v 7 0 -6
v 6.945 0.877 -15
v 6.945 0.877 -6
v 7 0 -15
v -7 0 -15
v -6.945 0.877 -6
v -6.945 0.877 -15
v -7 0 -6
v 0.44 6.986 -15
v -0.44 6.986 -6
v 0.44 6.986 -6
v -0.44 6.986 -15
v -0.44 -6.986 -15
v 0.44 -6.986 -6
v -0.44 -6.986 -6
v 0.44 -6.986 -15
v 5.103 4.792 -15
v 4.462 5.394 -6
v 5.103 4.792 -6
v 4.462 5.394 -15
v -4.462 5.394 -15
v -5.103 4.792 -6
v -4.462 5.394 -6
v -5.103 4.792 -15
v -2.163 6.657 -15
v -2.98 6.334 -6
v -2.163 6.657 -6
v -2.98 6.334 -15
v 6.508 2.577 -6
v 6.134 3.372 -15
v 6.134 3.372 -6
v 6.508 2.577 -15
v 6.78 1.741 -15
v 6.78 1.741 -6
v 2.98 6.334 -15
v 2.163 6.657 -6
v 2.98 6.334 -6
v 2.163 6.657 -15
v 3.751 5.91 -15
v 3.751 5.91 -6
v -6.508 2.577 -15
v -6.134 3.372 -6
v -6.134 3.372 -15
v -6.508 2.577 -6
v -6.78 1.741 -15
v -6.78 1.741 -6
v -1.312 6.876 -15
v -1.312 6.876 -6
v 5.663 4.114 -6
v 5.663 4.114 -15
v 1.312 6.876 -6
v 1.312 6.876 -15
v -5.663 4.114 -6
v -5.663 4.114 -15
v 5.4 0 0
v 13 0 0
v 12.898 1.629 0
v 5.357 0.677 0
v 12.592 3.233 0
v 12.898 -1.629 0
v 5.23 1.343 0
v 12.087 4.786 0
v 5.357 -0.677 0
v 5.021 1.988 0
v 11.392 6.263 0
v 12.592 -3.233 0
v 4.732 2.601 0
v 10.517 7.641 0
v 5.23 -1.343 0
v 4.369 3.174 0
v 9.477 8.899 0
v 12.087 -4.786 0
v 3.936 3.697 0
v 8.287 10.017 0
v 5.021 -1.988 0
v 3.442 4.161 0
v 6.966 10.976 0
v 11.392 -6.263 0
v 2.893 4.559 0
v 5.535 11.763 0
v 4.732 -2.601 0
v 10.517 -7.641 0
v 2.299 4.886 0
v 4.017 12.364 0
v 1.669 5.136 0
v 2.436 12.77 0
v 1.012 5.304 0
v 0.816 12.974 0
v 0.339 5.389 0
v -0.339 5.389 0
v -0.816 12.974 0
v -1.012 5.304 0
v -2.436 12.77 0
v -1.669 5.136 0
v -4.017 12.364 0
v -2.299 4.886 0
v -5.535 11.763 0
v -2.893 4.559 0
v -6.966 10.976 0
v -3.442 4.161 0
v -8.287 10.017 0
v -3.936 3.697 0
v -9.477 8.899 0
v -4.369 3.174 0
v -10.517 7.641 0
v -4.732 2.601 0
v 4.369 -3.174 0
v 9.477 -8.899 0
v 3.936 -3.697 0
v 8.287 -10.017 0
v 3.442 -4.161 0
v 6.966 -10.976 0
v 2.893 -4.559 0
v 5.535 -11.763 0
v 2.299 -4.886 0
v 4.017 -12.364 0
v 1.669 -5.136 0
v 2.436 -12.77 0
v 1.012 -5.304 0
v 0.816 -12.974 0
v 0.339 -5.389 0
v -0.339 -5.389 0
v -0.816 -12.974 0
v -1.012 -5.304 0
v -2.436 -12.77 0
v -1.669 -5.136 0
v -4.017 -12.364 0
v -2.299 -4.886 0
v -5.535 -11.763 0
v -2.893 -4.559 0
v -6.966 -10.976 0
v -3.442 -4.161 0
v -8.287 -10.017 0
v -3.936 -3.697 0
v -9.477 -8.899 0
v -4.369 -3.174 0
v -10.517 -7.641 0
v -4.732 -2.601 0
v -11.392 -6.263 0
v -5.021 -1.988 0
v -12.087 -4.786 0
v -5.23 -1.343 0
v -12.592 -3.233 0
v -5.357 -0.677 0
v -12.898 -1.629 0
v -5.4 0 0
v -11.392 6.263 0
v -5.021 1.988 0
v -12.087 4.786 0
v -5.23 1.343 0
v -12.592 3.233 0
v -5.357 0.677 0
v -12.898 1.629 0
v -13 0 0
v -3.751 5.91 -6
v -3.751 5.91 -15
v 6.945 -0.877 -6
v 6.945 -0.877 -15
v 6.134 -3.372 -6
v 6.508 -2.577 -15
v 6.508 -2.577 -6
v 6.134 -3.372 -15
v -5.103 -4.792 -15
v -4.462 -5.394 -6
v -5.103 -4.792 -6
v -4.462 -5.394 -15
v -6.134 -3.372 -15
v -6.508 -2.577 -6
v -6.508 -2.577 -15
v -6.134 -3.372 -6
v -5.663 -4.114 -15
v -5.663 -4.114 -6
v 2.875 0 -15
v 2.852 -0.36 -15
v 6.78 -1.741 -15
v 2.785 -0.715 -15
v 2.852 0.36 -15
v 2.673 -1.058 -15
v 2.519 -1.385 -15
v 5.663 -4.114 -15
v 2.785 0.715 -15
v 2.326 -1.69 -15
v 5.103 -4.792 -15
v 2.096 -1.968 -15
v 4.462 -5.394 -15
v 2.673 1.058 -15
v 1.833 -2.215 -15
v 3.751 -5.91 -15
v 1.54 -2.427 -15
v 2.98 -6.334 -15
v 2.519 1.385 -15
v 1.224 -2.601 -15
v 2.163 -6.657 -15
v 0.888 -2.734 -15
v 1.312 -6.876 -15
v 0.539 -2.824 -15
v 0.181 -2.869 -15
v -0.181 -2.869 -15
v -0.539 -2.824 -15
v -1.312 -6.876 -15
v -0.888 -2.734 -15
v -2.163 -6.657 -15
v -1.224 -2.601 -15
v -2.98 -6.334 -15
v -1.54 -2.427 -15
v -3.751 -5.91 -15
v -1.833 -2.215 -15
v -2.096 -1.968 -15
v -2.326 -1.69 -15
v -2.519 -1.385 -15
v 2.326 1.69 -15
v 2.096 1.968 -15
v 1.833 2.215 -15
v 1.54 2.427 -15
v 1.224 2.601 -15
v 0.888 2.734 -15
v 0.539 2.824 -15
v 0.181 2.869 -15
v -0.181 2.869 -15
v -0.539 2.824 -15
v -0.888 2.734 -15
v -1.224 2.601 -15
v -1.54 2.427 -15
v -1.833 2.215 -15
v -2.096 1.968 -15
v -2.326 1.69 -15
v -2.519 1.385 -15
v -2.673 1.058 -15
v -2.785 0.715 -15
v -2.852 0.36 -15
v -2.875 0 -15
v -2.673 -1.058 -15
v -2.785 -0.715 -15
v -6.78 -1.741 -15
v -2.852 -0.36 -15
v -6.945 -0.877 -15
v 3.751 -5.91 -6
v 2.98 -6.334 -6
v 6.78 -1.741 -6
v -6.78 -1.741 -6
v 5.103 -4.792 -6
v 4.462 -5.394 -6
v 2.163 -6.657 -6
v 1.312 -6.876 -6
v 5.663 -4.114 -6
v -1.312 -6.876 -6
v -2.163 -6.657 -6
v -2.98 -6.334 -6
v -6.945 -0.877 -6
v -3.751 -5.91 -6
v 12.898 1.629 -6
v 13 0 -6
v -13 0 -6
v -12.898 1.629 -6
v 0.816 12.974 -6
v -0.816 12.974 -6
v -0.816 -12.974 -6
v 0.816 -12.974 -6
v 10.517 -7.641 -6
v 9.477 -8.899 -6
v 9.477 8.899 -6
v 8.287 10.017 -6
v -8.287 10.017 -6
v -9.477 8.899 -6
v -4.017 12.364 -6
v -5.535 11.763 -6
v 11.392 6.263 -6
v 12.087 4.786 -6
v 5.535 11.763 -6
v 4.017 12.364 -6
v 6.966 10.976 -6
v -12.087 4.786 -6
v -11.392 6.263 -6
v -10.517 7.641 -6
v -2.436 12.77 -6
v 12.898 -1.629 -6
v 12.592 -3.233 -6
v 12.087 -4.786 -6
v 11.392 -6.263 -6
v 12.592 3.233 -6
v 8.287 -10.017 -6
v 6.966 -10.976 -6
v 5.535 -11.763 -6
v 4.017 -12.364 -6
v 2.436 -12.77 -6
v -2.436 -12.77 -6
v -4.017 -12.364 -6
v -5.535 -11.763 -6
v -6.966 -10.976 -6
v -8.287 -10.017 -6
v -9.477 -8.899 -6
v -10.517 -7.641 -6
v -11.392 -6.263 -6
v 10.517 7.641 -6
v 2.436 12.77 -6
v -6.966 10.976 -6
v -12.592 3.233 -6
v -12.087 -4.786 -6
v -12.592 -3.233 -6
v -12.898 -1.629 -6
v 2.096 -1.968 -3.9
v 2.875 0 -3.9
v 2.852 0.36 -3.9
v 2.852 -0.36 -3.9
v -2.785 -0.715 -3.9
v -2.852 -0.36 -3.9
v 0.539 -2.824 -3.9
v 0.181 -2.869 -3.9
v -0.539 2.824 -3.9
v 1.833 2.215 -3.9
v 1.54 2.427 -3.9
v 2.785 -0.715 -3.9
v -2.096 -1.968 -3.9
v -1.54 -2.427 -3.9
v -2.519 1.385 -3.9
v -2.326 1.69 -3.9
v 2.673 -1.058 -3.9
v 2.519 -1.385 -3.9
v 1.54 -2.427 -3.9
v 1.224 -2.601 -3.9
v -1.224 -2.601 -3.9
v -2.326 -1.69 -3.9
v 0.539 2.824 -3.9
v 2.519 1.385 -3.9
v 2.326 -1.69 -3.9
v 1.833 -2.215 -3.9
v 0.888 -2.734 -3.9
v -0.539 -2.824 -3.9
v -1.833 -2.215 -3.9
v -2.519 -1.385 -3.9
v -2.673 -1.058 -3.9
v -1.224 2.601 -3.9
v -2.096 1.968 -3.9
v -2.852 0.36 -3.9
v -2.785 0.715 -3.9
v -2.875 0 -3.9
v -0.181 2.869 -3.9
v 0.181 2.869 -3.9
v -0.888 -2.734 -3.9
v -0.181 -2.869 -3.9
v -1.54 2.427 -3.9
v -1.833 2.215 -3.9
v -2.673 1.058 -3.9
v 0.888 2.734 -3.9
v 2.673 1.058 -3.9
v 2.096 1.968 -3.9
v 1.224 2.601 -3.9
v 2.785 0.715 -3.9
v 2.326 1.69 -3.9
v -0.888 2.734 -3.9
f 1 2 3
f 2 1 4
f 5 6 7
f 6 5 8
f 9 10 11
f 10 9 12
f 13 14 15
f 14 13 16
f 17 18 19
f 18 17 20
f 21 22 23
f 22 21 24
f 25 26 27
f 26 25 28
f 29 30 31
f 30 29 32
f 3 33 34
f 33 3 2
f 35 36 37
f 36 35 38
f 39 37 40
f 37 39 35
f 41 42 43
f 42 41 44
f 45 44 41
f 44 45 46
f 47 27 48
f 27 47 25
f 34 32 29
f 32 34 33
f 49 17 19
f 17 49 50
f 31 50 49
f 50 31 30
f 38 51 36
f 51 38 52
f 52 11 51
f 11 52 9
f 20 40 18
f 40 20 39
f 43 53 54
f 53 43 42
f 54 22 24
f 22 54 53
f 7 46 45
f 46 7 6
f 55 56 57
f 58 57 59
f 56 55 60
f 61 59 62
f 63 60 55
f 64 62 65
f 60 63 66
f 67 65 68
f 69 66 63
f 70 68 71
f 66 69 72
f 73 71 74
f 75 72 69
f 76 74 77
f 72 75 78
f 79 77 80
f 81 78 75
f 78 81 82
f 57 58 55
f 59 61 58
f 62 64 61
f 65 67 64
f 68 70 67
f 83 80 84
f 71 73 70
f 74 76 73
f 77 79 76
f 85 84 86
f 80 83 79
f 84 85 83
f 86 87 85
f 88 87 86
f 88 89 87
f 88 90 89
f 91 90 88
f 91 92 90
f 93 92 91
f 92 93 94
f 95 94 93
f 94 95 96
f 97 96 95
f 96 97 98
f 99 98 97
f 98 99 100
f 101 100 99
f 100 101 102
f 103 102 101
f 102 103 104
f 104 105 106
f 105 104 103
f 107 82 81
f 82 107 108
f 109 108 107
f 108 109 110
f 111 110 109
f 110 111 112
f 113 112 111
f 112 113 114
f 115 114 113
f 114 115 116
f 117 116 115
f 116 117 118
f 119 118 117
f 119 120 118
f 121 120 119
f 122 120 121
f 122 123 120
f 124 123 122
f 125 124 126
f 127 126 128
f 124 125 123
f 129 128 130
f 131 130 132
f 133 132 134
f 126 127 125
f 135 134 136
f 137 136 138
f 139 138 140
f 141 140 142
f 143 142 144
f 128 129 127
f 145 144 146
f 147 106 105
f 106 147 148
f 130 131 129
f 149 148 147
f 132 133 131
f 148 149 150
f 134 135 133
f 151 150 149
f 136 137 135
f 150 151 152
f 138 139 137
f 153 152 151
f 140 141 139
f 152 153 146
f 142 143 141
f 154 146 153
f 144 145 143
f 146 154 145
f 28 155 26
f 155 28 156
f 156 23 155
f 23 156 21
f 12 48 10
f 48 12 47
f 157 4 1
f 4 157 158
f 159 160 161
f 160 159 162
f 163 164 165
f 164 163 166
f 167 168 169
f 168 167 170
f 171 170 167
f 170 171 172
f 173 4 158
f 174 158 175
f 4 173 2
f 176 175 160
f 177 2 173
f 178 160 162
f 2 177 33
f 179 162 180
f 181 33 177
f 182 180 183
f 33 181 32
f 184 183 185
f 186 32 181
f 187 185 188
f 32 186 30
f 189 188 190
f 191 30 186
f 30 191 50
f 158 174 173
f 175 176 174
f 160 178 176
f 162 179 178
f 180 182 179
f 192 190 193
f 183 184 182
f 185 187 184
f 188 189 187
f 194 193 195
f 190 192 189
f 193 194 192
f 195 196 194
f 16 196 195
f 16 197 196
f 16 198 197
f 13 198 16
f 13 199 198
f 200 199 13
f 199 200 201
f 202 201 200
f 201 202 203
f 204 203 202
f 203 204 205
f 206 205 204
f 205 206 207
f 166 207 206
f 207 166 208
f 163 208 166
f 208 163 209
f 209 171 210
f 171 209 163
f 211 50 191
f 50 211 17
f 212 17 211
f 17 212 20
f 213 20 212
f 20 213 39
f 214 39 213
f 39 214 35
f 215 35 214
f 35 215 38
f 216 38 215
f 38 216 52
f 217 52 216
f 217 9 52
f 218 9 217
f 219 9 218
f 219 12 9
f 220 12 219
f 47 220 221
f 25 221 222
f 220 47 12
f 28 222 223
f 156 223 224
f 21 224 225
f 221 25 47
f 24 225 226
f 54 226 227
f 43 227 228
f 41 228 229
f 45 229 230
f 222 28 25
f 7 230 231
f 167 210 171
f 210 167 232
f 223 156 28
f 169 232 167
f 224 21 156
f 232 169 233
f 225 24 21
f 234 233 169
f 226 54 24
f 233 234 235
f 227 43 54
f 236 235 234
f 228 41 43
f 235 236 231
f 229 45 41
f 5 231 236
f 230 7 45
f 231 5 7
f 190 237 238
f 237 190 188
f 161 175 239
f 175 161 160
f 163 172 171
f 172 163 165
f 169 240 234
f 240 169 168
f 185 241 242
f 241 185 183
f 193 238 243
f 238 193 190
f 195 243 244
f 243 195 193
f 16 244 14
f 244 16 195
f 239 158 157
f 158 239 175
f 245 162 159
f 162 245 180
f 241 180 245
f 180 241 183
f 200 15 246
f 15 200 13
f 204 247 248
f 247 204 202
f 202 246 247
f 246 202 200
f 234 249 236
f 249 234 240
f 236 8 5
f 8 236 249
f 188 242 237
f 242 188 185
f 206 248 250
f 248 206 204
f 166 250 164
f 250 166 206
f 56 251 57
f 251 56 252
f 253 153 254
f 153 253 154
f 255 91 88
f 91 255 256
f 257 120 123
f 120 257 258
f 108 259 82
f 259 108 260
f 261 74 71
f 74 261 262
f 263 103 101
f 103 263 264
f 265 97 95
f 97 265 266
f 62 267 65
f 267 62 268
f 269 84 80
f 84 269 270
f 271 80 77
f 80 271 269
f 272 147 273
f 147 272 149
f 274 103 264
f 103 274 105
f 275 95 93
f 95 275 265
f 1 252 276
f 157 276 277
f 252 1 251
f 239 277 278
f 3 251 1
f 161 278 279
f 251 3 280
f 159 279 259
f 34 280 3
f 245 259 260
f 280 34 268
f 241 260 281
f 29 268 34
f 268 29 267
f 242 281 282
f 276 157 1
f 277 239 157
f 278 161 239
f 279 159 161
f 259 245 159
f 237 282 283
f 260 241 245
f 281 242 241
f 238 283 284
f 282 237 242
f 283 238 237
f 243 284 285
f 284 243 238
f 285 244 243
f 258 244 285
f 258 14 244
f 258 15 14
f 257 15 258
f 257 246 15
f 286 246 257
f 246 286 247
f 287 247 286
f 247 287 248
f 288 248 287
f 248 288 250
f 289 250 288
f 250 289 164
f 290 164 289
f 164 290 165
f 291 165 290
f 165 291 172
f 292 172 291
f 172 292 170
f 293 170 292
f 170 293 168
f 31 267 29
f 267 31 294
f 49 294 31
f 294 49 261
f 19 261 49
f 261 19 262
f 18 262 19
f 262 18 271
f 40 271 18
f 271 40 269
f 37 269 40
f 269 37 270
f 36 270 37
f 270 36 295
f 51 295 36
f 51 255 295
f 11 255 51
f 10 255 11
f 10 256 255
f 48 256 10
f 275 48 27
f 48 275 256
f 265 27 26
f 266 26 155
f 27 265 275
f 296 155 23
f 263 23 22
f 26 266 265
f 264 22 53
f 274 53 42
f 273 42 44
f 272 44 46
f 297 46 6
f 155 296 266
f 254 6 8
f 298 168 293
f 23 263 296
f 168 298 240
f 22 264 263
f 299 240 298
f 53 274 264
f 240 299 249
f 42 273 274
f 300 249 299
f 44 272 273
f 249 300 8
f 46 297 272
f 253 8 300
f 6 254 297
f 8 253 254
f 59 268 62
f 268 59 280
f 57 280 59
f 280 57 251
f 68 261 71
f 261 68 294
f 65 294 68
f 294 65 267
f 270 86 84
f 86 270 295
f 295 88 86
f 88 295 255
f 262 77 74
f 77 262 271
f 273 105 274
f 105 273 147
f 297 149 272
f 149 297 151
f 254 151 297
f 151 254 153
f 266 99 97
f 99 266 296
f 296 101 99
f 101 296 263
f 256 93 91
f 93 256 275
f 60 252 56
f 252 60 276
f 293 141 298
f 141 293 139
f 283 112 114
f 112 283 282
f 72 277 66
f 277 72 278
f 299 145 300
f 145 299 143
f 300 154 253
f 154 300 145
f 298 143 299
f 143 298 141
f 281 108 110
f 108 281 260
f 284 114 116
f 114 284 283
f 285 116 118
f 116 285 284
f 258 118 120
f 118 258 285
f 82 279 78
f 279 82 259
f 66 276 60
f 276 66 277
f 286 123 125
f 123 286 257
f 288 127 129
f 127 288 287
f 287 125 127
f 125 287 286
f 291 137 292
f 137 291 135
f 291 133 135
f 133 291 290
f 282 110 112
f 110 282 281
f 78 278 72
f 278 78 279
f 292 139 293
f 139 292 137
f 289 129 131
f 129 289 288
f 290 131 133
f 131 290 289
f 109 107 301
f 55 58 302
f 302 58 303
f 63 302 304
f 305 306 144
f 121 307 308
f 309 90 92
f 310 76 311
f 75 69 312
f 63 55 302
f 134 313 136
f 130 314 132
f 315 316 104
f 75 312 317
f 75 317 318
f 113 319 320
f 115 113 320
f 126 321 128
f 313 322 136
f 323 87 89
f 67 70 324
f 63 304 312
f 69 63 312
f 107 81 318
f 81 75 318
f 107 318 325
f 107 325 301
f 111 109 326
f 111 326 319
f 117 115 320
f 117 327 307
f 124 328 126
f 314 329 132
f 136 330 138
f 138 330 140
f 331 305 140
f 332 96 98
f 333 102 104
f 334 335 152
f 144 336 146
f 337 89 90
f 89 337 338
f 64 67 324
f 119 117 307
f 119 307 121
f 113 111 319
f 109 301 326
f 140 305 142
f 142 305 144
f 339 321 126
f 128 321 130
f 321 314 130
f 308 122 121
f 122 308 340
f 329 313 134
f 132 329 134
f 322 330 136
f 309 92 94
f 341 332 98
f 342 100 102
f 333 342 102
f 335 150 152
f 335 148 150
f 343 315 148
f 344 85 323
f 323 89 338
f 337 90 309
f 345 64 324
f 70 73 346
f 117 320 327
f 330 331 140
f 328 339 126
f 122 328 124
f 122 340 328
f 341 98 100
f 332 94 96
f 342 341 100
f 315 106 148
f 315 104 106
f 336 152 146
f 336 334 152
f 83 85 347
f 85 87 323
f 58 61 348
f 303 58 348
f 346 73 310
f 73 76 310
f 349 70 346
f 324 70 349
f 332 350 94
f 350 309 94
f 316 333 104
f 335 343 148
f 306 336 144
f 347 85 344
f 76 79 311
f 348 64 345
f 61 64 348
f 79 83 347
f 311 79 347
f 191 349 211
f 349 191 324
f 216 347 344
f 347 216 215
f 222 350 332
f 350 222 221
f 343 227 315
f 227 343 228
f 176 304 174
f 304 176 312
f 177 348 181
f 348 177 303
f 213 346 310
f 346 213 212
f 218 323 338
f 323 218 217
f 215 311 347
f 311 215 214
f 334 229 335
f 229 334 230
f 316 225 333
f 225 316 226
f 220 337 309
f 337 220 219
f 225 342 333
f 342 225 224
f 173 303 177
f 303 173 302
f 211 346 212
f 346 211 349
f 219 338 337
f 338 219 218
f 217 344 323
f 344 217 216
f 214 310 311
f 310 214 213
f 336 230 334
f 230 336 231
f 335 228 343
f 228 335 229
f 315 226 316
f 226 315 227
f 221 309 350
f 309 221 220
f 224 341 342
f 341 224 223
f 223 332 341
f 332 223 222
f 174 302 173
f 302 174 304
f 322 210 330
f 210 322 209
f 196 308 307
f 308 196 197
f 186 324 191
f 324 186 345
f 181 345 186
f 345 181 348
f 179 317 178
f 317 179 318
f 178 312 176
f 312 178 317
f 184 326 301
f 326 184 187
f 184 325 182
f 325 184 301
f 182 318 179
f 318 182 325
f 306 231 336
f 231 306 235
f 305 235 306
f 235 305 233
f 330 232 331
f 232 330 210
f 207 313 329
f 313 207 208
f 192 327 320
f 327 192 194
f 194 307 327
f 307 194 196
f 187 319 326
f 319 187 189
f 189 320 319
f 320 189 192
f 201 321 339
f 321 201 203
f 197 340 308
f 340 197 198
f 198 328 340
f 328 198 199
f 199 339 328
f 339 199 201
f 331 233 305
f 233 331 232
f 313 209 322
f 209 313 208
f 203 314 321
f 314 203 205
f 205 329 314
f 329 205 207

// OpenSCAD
$fn = 50;


difference() {
	union() {
		translate(v = [0, 0, -15.0000000000]) {
			cylinder(h = 15, r = 7.0000000000);
		}
		translate(v = [0, 0, -6.0000000000]) {
			cylinder(h = 6, r = 13.0000000000);
		}
	}
	union() {
		translate(v = [0, 0, 0]) {
			rotate(a = [0, 0, 0]) {
				difference() {
					union() {
						#translate(v = [0, 0, -15.0000000000]) {
							cylinder(h = 15, r = 2.6000000000);
						}
						#translate(v = [0, 0, -3.9000000000]) {
							cylinder(h = 3.9000000000, r1 = 2.8750000000, r2 = 5.4000000000);
						}
						#translate(v = [0, 0, -15.0000000000]) {
							cylinder(h = 15, r = 2.8750000000);
						}
						#translate(v = [0, 0, -15.0000000000]) {
							cylinder(h = 15, r = 2.6000000000);
						}
					}
					union();
				}
			}
		}
	}
}
